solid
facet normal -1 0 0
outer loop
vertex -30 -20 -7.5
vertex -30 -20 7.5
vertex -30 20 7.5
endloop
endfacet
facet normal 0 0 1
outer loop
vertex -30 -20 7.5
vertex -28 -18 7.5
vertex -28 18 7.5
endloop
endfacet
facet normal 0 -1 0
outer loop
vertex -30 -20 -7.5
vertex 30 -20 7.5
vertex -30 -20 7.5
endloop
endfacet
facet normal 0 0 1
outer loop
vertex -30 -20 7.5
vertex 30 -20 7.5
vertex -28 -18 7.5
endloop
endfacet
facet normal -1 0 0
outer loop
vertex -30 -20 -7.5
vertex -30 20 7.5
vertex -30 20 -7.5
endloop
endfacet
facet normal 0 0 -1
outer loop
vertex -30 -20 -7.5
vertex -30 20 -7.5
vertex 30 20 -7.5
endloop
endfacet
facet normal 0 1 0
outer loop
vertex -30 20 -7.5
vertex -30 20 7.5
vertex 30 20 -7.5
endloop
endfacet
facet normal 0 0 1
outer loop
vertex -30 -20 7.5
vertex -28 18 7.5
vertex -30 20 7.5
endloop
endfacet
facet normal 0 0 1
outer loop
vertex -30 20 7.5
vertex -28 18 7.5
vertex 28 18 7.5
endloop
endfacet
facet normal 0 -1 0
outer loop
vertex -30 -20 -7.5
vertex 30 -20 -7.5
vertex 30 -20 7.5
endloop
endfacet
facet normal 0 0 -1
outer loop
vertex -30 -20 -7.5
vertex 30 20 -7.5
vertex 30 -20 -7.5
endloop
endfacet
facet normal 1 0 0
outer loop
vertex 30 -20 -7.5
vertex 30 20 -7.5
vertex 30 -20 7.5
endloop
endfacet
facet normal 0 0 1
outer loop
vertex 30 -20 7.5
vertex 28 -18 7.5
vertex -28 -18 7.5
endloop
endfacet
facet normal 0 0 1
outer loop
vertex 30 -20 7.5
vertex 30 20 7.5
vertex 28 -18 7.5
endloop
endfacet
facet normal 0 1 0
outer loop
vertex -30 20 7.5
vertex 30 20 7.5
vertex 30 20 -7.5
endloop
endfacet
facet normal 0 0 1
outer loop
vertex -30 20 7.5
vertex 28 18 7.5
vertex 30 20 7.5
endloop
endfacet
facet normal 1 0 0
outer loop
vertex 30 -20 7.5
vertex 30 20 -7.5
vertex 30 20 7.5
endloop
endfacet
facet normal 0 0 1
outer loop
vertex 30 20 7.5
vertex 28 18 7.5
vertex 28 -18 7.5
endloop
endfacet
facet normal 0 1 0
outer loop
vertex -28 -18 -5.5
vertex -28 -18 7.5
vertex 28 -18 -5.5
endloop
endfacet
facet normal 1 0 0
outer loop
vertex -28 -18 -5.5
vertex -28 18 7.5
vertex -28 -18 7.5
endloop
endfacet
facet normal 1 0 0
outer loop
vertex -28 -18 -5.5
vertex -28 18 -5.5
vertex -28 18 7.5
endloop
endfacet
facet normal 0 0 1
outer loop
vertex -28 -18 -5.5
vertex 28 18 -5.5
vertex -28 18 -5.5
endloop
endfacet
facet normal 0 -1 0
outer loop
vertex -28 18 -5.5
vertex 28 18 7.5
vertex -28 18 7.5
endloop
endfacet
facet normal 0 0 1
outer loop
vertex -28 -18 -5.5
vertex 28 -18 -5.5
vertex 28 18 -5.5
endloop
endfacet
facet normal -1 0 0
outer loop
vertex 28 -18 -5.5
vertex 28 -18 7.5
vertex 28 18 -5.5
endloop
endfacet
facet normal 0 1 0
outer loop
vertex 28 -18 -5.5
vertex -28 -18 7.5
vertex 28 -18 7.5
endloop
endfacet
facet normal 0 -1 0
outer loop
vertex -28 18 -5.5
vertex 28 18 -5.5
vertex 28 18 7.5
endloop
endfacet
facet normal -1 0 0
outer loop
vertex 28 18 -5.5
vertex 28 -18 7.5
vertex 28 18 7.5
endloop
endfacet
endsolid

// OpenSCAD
// GHOST Parametric Model: test_enclosure
// Generated at 2026-11-11 12:33:16
width = 40;
length = 60;
height = 15;
wall = 2.0;

difference() {
    cube([length, width, height], center=true);
    translate([0, 0, wall])
        cube([length - (wall * 2), width - (wall * 2), height], center=true);
}
